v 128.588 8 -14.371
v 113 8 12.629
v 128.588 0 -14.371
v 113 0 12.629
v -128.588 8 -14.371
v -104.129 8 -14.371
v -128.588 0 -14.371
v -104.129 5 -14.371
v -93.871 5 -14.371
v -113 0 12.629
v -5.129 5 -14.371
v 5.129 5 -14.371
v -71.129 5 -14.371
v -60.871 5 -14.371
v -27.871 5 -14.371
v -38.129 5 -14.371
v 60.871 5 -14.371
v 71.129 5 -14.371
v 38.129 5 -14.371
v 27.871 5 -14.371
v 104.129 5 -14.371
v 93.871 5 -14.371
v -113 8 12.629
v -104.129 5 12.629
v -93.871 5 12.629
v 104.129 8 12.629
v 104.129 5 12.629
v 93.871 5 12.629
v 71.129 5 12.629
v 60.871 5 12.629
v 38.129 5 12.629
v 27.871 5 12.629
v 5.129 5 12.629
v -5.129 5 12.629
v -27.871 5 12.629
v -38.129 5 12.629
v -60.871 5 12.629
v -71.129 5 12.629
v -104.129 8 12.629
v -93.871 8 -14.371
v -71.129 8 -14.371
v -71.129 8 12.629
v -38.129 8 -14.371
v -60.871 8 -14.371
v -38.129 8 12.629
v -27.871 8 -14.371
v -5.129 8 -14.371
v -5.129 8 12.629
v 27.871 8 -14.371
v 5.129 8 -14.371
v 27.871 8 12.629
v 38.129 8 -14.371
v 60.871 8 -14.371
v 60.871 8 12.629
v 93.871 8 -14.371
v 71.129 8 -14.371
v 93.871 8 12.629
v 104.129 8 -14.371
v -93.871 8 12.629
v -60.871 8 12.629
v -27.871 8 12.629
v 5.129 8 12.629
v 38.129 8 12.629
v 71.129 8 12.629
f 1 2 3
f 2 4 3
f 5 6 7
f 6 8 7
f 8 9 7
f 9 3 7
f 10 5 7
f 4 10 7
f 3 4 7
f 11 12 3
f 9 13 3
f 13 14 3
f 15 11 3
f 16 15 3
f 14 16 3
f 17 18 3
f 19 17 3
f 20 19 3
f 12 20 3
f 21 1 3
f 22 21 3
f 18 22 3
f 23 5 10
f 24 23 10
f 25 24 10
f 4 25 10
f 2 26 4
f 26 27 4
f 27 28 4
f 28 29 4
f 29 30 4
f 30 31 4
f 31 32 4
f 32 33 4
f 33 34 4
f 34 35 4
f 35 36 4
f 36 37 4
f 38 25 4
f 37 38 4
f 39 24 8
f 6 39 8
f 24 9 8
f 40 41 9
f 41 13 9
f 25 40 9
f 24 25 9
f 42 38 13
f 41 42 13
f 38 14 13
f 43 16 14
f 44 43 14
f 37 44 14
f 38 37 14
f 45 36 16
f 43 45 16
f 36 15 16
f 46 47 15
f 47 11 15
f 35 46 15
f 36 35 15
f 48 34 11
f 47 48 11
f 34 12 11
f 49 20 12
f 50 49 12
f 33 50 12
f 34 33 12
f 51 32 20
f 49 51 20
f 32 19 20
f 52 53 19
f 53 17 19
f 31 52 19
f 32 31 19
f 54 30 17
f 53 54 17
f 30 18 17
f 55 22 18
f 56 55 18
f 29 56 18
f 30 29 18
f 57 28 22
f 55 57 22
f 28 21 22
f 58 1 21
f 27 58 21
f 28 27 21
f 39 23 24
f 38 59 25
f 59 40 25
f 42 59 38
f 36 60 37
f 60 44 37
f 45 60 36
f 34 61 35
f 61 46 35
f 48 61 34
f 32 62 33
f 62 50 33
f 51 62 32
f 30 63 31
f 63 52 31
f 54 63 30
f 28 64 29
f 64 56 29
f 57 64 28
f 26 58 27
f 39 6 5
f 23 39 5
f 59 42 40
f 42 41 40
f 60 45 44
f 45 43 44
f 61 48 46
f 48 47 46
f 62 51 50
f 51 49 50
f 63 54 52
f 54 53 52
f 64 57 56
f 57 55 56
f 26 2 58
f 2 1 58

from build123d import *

# Parameters (mm, degrees)
BOSS_EXTRUDE1_DEPTH = 8
SKETCH4_W           = 10.258234738
SKETCH4_H           = 27
CUT_EXTRUDE1_DEPTH  = 3


with BuildPart() as part:
    # Sketch1 → Boss-Extrude1 (new body)
    with BuildSketch(Plane(origin=(0, 0, 0), x_dir=(1, 0, 0), z_dir=(0, 1, 0))):
        Polygon((-113, -12.62891462), (113, -12.62891462), (128.588457268, 14.37108538), (-128.588457268, 14.37108538), align=None)
    extrude(amount=BOSS_EXTRUDE1_DEPTH)

    # Sketch4 → Cut-Extrude1 (cut)
    with BuildSketch(Plane(origin=(0, 8, 0), x_dir=(1, 0, 0), z_dir=(0, 1, 0))):
        with Locations((-66, 0.87108538)):
            Rectangle(SKETCH4_W, SKETCH4_H)
        with Locations((-99, 0.87108538)):
            Rectangle(SKETCH4_W, SKETCH4_H)
        with Locations((-33, 0.87108538)):
            Rectangle(SKETCH4_W, SKETCH4_H)
        with Locations((0, 0.87108538)):
            Rectangle(SKETCH4_W, SKETCH4_H)
        with Locations((33, 0.87108538)):
            Rectangle(SKETCH4_W, SKETCH4_H)
        with Locations((66, 0.87108538)):
            Rectangle(SKETCH4_W, SKETCH4_H)
        with Locations((99, 0.87108538)):
            Rectangle(SKETCH4_W, SKETCH4_H)
    extrude(amount=-CUT_EXTRUDE1_DEPTH, mode=Mode.SUBTRACT)


solid = part.part
